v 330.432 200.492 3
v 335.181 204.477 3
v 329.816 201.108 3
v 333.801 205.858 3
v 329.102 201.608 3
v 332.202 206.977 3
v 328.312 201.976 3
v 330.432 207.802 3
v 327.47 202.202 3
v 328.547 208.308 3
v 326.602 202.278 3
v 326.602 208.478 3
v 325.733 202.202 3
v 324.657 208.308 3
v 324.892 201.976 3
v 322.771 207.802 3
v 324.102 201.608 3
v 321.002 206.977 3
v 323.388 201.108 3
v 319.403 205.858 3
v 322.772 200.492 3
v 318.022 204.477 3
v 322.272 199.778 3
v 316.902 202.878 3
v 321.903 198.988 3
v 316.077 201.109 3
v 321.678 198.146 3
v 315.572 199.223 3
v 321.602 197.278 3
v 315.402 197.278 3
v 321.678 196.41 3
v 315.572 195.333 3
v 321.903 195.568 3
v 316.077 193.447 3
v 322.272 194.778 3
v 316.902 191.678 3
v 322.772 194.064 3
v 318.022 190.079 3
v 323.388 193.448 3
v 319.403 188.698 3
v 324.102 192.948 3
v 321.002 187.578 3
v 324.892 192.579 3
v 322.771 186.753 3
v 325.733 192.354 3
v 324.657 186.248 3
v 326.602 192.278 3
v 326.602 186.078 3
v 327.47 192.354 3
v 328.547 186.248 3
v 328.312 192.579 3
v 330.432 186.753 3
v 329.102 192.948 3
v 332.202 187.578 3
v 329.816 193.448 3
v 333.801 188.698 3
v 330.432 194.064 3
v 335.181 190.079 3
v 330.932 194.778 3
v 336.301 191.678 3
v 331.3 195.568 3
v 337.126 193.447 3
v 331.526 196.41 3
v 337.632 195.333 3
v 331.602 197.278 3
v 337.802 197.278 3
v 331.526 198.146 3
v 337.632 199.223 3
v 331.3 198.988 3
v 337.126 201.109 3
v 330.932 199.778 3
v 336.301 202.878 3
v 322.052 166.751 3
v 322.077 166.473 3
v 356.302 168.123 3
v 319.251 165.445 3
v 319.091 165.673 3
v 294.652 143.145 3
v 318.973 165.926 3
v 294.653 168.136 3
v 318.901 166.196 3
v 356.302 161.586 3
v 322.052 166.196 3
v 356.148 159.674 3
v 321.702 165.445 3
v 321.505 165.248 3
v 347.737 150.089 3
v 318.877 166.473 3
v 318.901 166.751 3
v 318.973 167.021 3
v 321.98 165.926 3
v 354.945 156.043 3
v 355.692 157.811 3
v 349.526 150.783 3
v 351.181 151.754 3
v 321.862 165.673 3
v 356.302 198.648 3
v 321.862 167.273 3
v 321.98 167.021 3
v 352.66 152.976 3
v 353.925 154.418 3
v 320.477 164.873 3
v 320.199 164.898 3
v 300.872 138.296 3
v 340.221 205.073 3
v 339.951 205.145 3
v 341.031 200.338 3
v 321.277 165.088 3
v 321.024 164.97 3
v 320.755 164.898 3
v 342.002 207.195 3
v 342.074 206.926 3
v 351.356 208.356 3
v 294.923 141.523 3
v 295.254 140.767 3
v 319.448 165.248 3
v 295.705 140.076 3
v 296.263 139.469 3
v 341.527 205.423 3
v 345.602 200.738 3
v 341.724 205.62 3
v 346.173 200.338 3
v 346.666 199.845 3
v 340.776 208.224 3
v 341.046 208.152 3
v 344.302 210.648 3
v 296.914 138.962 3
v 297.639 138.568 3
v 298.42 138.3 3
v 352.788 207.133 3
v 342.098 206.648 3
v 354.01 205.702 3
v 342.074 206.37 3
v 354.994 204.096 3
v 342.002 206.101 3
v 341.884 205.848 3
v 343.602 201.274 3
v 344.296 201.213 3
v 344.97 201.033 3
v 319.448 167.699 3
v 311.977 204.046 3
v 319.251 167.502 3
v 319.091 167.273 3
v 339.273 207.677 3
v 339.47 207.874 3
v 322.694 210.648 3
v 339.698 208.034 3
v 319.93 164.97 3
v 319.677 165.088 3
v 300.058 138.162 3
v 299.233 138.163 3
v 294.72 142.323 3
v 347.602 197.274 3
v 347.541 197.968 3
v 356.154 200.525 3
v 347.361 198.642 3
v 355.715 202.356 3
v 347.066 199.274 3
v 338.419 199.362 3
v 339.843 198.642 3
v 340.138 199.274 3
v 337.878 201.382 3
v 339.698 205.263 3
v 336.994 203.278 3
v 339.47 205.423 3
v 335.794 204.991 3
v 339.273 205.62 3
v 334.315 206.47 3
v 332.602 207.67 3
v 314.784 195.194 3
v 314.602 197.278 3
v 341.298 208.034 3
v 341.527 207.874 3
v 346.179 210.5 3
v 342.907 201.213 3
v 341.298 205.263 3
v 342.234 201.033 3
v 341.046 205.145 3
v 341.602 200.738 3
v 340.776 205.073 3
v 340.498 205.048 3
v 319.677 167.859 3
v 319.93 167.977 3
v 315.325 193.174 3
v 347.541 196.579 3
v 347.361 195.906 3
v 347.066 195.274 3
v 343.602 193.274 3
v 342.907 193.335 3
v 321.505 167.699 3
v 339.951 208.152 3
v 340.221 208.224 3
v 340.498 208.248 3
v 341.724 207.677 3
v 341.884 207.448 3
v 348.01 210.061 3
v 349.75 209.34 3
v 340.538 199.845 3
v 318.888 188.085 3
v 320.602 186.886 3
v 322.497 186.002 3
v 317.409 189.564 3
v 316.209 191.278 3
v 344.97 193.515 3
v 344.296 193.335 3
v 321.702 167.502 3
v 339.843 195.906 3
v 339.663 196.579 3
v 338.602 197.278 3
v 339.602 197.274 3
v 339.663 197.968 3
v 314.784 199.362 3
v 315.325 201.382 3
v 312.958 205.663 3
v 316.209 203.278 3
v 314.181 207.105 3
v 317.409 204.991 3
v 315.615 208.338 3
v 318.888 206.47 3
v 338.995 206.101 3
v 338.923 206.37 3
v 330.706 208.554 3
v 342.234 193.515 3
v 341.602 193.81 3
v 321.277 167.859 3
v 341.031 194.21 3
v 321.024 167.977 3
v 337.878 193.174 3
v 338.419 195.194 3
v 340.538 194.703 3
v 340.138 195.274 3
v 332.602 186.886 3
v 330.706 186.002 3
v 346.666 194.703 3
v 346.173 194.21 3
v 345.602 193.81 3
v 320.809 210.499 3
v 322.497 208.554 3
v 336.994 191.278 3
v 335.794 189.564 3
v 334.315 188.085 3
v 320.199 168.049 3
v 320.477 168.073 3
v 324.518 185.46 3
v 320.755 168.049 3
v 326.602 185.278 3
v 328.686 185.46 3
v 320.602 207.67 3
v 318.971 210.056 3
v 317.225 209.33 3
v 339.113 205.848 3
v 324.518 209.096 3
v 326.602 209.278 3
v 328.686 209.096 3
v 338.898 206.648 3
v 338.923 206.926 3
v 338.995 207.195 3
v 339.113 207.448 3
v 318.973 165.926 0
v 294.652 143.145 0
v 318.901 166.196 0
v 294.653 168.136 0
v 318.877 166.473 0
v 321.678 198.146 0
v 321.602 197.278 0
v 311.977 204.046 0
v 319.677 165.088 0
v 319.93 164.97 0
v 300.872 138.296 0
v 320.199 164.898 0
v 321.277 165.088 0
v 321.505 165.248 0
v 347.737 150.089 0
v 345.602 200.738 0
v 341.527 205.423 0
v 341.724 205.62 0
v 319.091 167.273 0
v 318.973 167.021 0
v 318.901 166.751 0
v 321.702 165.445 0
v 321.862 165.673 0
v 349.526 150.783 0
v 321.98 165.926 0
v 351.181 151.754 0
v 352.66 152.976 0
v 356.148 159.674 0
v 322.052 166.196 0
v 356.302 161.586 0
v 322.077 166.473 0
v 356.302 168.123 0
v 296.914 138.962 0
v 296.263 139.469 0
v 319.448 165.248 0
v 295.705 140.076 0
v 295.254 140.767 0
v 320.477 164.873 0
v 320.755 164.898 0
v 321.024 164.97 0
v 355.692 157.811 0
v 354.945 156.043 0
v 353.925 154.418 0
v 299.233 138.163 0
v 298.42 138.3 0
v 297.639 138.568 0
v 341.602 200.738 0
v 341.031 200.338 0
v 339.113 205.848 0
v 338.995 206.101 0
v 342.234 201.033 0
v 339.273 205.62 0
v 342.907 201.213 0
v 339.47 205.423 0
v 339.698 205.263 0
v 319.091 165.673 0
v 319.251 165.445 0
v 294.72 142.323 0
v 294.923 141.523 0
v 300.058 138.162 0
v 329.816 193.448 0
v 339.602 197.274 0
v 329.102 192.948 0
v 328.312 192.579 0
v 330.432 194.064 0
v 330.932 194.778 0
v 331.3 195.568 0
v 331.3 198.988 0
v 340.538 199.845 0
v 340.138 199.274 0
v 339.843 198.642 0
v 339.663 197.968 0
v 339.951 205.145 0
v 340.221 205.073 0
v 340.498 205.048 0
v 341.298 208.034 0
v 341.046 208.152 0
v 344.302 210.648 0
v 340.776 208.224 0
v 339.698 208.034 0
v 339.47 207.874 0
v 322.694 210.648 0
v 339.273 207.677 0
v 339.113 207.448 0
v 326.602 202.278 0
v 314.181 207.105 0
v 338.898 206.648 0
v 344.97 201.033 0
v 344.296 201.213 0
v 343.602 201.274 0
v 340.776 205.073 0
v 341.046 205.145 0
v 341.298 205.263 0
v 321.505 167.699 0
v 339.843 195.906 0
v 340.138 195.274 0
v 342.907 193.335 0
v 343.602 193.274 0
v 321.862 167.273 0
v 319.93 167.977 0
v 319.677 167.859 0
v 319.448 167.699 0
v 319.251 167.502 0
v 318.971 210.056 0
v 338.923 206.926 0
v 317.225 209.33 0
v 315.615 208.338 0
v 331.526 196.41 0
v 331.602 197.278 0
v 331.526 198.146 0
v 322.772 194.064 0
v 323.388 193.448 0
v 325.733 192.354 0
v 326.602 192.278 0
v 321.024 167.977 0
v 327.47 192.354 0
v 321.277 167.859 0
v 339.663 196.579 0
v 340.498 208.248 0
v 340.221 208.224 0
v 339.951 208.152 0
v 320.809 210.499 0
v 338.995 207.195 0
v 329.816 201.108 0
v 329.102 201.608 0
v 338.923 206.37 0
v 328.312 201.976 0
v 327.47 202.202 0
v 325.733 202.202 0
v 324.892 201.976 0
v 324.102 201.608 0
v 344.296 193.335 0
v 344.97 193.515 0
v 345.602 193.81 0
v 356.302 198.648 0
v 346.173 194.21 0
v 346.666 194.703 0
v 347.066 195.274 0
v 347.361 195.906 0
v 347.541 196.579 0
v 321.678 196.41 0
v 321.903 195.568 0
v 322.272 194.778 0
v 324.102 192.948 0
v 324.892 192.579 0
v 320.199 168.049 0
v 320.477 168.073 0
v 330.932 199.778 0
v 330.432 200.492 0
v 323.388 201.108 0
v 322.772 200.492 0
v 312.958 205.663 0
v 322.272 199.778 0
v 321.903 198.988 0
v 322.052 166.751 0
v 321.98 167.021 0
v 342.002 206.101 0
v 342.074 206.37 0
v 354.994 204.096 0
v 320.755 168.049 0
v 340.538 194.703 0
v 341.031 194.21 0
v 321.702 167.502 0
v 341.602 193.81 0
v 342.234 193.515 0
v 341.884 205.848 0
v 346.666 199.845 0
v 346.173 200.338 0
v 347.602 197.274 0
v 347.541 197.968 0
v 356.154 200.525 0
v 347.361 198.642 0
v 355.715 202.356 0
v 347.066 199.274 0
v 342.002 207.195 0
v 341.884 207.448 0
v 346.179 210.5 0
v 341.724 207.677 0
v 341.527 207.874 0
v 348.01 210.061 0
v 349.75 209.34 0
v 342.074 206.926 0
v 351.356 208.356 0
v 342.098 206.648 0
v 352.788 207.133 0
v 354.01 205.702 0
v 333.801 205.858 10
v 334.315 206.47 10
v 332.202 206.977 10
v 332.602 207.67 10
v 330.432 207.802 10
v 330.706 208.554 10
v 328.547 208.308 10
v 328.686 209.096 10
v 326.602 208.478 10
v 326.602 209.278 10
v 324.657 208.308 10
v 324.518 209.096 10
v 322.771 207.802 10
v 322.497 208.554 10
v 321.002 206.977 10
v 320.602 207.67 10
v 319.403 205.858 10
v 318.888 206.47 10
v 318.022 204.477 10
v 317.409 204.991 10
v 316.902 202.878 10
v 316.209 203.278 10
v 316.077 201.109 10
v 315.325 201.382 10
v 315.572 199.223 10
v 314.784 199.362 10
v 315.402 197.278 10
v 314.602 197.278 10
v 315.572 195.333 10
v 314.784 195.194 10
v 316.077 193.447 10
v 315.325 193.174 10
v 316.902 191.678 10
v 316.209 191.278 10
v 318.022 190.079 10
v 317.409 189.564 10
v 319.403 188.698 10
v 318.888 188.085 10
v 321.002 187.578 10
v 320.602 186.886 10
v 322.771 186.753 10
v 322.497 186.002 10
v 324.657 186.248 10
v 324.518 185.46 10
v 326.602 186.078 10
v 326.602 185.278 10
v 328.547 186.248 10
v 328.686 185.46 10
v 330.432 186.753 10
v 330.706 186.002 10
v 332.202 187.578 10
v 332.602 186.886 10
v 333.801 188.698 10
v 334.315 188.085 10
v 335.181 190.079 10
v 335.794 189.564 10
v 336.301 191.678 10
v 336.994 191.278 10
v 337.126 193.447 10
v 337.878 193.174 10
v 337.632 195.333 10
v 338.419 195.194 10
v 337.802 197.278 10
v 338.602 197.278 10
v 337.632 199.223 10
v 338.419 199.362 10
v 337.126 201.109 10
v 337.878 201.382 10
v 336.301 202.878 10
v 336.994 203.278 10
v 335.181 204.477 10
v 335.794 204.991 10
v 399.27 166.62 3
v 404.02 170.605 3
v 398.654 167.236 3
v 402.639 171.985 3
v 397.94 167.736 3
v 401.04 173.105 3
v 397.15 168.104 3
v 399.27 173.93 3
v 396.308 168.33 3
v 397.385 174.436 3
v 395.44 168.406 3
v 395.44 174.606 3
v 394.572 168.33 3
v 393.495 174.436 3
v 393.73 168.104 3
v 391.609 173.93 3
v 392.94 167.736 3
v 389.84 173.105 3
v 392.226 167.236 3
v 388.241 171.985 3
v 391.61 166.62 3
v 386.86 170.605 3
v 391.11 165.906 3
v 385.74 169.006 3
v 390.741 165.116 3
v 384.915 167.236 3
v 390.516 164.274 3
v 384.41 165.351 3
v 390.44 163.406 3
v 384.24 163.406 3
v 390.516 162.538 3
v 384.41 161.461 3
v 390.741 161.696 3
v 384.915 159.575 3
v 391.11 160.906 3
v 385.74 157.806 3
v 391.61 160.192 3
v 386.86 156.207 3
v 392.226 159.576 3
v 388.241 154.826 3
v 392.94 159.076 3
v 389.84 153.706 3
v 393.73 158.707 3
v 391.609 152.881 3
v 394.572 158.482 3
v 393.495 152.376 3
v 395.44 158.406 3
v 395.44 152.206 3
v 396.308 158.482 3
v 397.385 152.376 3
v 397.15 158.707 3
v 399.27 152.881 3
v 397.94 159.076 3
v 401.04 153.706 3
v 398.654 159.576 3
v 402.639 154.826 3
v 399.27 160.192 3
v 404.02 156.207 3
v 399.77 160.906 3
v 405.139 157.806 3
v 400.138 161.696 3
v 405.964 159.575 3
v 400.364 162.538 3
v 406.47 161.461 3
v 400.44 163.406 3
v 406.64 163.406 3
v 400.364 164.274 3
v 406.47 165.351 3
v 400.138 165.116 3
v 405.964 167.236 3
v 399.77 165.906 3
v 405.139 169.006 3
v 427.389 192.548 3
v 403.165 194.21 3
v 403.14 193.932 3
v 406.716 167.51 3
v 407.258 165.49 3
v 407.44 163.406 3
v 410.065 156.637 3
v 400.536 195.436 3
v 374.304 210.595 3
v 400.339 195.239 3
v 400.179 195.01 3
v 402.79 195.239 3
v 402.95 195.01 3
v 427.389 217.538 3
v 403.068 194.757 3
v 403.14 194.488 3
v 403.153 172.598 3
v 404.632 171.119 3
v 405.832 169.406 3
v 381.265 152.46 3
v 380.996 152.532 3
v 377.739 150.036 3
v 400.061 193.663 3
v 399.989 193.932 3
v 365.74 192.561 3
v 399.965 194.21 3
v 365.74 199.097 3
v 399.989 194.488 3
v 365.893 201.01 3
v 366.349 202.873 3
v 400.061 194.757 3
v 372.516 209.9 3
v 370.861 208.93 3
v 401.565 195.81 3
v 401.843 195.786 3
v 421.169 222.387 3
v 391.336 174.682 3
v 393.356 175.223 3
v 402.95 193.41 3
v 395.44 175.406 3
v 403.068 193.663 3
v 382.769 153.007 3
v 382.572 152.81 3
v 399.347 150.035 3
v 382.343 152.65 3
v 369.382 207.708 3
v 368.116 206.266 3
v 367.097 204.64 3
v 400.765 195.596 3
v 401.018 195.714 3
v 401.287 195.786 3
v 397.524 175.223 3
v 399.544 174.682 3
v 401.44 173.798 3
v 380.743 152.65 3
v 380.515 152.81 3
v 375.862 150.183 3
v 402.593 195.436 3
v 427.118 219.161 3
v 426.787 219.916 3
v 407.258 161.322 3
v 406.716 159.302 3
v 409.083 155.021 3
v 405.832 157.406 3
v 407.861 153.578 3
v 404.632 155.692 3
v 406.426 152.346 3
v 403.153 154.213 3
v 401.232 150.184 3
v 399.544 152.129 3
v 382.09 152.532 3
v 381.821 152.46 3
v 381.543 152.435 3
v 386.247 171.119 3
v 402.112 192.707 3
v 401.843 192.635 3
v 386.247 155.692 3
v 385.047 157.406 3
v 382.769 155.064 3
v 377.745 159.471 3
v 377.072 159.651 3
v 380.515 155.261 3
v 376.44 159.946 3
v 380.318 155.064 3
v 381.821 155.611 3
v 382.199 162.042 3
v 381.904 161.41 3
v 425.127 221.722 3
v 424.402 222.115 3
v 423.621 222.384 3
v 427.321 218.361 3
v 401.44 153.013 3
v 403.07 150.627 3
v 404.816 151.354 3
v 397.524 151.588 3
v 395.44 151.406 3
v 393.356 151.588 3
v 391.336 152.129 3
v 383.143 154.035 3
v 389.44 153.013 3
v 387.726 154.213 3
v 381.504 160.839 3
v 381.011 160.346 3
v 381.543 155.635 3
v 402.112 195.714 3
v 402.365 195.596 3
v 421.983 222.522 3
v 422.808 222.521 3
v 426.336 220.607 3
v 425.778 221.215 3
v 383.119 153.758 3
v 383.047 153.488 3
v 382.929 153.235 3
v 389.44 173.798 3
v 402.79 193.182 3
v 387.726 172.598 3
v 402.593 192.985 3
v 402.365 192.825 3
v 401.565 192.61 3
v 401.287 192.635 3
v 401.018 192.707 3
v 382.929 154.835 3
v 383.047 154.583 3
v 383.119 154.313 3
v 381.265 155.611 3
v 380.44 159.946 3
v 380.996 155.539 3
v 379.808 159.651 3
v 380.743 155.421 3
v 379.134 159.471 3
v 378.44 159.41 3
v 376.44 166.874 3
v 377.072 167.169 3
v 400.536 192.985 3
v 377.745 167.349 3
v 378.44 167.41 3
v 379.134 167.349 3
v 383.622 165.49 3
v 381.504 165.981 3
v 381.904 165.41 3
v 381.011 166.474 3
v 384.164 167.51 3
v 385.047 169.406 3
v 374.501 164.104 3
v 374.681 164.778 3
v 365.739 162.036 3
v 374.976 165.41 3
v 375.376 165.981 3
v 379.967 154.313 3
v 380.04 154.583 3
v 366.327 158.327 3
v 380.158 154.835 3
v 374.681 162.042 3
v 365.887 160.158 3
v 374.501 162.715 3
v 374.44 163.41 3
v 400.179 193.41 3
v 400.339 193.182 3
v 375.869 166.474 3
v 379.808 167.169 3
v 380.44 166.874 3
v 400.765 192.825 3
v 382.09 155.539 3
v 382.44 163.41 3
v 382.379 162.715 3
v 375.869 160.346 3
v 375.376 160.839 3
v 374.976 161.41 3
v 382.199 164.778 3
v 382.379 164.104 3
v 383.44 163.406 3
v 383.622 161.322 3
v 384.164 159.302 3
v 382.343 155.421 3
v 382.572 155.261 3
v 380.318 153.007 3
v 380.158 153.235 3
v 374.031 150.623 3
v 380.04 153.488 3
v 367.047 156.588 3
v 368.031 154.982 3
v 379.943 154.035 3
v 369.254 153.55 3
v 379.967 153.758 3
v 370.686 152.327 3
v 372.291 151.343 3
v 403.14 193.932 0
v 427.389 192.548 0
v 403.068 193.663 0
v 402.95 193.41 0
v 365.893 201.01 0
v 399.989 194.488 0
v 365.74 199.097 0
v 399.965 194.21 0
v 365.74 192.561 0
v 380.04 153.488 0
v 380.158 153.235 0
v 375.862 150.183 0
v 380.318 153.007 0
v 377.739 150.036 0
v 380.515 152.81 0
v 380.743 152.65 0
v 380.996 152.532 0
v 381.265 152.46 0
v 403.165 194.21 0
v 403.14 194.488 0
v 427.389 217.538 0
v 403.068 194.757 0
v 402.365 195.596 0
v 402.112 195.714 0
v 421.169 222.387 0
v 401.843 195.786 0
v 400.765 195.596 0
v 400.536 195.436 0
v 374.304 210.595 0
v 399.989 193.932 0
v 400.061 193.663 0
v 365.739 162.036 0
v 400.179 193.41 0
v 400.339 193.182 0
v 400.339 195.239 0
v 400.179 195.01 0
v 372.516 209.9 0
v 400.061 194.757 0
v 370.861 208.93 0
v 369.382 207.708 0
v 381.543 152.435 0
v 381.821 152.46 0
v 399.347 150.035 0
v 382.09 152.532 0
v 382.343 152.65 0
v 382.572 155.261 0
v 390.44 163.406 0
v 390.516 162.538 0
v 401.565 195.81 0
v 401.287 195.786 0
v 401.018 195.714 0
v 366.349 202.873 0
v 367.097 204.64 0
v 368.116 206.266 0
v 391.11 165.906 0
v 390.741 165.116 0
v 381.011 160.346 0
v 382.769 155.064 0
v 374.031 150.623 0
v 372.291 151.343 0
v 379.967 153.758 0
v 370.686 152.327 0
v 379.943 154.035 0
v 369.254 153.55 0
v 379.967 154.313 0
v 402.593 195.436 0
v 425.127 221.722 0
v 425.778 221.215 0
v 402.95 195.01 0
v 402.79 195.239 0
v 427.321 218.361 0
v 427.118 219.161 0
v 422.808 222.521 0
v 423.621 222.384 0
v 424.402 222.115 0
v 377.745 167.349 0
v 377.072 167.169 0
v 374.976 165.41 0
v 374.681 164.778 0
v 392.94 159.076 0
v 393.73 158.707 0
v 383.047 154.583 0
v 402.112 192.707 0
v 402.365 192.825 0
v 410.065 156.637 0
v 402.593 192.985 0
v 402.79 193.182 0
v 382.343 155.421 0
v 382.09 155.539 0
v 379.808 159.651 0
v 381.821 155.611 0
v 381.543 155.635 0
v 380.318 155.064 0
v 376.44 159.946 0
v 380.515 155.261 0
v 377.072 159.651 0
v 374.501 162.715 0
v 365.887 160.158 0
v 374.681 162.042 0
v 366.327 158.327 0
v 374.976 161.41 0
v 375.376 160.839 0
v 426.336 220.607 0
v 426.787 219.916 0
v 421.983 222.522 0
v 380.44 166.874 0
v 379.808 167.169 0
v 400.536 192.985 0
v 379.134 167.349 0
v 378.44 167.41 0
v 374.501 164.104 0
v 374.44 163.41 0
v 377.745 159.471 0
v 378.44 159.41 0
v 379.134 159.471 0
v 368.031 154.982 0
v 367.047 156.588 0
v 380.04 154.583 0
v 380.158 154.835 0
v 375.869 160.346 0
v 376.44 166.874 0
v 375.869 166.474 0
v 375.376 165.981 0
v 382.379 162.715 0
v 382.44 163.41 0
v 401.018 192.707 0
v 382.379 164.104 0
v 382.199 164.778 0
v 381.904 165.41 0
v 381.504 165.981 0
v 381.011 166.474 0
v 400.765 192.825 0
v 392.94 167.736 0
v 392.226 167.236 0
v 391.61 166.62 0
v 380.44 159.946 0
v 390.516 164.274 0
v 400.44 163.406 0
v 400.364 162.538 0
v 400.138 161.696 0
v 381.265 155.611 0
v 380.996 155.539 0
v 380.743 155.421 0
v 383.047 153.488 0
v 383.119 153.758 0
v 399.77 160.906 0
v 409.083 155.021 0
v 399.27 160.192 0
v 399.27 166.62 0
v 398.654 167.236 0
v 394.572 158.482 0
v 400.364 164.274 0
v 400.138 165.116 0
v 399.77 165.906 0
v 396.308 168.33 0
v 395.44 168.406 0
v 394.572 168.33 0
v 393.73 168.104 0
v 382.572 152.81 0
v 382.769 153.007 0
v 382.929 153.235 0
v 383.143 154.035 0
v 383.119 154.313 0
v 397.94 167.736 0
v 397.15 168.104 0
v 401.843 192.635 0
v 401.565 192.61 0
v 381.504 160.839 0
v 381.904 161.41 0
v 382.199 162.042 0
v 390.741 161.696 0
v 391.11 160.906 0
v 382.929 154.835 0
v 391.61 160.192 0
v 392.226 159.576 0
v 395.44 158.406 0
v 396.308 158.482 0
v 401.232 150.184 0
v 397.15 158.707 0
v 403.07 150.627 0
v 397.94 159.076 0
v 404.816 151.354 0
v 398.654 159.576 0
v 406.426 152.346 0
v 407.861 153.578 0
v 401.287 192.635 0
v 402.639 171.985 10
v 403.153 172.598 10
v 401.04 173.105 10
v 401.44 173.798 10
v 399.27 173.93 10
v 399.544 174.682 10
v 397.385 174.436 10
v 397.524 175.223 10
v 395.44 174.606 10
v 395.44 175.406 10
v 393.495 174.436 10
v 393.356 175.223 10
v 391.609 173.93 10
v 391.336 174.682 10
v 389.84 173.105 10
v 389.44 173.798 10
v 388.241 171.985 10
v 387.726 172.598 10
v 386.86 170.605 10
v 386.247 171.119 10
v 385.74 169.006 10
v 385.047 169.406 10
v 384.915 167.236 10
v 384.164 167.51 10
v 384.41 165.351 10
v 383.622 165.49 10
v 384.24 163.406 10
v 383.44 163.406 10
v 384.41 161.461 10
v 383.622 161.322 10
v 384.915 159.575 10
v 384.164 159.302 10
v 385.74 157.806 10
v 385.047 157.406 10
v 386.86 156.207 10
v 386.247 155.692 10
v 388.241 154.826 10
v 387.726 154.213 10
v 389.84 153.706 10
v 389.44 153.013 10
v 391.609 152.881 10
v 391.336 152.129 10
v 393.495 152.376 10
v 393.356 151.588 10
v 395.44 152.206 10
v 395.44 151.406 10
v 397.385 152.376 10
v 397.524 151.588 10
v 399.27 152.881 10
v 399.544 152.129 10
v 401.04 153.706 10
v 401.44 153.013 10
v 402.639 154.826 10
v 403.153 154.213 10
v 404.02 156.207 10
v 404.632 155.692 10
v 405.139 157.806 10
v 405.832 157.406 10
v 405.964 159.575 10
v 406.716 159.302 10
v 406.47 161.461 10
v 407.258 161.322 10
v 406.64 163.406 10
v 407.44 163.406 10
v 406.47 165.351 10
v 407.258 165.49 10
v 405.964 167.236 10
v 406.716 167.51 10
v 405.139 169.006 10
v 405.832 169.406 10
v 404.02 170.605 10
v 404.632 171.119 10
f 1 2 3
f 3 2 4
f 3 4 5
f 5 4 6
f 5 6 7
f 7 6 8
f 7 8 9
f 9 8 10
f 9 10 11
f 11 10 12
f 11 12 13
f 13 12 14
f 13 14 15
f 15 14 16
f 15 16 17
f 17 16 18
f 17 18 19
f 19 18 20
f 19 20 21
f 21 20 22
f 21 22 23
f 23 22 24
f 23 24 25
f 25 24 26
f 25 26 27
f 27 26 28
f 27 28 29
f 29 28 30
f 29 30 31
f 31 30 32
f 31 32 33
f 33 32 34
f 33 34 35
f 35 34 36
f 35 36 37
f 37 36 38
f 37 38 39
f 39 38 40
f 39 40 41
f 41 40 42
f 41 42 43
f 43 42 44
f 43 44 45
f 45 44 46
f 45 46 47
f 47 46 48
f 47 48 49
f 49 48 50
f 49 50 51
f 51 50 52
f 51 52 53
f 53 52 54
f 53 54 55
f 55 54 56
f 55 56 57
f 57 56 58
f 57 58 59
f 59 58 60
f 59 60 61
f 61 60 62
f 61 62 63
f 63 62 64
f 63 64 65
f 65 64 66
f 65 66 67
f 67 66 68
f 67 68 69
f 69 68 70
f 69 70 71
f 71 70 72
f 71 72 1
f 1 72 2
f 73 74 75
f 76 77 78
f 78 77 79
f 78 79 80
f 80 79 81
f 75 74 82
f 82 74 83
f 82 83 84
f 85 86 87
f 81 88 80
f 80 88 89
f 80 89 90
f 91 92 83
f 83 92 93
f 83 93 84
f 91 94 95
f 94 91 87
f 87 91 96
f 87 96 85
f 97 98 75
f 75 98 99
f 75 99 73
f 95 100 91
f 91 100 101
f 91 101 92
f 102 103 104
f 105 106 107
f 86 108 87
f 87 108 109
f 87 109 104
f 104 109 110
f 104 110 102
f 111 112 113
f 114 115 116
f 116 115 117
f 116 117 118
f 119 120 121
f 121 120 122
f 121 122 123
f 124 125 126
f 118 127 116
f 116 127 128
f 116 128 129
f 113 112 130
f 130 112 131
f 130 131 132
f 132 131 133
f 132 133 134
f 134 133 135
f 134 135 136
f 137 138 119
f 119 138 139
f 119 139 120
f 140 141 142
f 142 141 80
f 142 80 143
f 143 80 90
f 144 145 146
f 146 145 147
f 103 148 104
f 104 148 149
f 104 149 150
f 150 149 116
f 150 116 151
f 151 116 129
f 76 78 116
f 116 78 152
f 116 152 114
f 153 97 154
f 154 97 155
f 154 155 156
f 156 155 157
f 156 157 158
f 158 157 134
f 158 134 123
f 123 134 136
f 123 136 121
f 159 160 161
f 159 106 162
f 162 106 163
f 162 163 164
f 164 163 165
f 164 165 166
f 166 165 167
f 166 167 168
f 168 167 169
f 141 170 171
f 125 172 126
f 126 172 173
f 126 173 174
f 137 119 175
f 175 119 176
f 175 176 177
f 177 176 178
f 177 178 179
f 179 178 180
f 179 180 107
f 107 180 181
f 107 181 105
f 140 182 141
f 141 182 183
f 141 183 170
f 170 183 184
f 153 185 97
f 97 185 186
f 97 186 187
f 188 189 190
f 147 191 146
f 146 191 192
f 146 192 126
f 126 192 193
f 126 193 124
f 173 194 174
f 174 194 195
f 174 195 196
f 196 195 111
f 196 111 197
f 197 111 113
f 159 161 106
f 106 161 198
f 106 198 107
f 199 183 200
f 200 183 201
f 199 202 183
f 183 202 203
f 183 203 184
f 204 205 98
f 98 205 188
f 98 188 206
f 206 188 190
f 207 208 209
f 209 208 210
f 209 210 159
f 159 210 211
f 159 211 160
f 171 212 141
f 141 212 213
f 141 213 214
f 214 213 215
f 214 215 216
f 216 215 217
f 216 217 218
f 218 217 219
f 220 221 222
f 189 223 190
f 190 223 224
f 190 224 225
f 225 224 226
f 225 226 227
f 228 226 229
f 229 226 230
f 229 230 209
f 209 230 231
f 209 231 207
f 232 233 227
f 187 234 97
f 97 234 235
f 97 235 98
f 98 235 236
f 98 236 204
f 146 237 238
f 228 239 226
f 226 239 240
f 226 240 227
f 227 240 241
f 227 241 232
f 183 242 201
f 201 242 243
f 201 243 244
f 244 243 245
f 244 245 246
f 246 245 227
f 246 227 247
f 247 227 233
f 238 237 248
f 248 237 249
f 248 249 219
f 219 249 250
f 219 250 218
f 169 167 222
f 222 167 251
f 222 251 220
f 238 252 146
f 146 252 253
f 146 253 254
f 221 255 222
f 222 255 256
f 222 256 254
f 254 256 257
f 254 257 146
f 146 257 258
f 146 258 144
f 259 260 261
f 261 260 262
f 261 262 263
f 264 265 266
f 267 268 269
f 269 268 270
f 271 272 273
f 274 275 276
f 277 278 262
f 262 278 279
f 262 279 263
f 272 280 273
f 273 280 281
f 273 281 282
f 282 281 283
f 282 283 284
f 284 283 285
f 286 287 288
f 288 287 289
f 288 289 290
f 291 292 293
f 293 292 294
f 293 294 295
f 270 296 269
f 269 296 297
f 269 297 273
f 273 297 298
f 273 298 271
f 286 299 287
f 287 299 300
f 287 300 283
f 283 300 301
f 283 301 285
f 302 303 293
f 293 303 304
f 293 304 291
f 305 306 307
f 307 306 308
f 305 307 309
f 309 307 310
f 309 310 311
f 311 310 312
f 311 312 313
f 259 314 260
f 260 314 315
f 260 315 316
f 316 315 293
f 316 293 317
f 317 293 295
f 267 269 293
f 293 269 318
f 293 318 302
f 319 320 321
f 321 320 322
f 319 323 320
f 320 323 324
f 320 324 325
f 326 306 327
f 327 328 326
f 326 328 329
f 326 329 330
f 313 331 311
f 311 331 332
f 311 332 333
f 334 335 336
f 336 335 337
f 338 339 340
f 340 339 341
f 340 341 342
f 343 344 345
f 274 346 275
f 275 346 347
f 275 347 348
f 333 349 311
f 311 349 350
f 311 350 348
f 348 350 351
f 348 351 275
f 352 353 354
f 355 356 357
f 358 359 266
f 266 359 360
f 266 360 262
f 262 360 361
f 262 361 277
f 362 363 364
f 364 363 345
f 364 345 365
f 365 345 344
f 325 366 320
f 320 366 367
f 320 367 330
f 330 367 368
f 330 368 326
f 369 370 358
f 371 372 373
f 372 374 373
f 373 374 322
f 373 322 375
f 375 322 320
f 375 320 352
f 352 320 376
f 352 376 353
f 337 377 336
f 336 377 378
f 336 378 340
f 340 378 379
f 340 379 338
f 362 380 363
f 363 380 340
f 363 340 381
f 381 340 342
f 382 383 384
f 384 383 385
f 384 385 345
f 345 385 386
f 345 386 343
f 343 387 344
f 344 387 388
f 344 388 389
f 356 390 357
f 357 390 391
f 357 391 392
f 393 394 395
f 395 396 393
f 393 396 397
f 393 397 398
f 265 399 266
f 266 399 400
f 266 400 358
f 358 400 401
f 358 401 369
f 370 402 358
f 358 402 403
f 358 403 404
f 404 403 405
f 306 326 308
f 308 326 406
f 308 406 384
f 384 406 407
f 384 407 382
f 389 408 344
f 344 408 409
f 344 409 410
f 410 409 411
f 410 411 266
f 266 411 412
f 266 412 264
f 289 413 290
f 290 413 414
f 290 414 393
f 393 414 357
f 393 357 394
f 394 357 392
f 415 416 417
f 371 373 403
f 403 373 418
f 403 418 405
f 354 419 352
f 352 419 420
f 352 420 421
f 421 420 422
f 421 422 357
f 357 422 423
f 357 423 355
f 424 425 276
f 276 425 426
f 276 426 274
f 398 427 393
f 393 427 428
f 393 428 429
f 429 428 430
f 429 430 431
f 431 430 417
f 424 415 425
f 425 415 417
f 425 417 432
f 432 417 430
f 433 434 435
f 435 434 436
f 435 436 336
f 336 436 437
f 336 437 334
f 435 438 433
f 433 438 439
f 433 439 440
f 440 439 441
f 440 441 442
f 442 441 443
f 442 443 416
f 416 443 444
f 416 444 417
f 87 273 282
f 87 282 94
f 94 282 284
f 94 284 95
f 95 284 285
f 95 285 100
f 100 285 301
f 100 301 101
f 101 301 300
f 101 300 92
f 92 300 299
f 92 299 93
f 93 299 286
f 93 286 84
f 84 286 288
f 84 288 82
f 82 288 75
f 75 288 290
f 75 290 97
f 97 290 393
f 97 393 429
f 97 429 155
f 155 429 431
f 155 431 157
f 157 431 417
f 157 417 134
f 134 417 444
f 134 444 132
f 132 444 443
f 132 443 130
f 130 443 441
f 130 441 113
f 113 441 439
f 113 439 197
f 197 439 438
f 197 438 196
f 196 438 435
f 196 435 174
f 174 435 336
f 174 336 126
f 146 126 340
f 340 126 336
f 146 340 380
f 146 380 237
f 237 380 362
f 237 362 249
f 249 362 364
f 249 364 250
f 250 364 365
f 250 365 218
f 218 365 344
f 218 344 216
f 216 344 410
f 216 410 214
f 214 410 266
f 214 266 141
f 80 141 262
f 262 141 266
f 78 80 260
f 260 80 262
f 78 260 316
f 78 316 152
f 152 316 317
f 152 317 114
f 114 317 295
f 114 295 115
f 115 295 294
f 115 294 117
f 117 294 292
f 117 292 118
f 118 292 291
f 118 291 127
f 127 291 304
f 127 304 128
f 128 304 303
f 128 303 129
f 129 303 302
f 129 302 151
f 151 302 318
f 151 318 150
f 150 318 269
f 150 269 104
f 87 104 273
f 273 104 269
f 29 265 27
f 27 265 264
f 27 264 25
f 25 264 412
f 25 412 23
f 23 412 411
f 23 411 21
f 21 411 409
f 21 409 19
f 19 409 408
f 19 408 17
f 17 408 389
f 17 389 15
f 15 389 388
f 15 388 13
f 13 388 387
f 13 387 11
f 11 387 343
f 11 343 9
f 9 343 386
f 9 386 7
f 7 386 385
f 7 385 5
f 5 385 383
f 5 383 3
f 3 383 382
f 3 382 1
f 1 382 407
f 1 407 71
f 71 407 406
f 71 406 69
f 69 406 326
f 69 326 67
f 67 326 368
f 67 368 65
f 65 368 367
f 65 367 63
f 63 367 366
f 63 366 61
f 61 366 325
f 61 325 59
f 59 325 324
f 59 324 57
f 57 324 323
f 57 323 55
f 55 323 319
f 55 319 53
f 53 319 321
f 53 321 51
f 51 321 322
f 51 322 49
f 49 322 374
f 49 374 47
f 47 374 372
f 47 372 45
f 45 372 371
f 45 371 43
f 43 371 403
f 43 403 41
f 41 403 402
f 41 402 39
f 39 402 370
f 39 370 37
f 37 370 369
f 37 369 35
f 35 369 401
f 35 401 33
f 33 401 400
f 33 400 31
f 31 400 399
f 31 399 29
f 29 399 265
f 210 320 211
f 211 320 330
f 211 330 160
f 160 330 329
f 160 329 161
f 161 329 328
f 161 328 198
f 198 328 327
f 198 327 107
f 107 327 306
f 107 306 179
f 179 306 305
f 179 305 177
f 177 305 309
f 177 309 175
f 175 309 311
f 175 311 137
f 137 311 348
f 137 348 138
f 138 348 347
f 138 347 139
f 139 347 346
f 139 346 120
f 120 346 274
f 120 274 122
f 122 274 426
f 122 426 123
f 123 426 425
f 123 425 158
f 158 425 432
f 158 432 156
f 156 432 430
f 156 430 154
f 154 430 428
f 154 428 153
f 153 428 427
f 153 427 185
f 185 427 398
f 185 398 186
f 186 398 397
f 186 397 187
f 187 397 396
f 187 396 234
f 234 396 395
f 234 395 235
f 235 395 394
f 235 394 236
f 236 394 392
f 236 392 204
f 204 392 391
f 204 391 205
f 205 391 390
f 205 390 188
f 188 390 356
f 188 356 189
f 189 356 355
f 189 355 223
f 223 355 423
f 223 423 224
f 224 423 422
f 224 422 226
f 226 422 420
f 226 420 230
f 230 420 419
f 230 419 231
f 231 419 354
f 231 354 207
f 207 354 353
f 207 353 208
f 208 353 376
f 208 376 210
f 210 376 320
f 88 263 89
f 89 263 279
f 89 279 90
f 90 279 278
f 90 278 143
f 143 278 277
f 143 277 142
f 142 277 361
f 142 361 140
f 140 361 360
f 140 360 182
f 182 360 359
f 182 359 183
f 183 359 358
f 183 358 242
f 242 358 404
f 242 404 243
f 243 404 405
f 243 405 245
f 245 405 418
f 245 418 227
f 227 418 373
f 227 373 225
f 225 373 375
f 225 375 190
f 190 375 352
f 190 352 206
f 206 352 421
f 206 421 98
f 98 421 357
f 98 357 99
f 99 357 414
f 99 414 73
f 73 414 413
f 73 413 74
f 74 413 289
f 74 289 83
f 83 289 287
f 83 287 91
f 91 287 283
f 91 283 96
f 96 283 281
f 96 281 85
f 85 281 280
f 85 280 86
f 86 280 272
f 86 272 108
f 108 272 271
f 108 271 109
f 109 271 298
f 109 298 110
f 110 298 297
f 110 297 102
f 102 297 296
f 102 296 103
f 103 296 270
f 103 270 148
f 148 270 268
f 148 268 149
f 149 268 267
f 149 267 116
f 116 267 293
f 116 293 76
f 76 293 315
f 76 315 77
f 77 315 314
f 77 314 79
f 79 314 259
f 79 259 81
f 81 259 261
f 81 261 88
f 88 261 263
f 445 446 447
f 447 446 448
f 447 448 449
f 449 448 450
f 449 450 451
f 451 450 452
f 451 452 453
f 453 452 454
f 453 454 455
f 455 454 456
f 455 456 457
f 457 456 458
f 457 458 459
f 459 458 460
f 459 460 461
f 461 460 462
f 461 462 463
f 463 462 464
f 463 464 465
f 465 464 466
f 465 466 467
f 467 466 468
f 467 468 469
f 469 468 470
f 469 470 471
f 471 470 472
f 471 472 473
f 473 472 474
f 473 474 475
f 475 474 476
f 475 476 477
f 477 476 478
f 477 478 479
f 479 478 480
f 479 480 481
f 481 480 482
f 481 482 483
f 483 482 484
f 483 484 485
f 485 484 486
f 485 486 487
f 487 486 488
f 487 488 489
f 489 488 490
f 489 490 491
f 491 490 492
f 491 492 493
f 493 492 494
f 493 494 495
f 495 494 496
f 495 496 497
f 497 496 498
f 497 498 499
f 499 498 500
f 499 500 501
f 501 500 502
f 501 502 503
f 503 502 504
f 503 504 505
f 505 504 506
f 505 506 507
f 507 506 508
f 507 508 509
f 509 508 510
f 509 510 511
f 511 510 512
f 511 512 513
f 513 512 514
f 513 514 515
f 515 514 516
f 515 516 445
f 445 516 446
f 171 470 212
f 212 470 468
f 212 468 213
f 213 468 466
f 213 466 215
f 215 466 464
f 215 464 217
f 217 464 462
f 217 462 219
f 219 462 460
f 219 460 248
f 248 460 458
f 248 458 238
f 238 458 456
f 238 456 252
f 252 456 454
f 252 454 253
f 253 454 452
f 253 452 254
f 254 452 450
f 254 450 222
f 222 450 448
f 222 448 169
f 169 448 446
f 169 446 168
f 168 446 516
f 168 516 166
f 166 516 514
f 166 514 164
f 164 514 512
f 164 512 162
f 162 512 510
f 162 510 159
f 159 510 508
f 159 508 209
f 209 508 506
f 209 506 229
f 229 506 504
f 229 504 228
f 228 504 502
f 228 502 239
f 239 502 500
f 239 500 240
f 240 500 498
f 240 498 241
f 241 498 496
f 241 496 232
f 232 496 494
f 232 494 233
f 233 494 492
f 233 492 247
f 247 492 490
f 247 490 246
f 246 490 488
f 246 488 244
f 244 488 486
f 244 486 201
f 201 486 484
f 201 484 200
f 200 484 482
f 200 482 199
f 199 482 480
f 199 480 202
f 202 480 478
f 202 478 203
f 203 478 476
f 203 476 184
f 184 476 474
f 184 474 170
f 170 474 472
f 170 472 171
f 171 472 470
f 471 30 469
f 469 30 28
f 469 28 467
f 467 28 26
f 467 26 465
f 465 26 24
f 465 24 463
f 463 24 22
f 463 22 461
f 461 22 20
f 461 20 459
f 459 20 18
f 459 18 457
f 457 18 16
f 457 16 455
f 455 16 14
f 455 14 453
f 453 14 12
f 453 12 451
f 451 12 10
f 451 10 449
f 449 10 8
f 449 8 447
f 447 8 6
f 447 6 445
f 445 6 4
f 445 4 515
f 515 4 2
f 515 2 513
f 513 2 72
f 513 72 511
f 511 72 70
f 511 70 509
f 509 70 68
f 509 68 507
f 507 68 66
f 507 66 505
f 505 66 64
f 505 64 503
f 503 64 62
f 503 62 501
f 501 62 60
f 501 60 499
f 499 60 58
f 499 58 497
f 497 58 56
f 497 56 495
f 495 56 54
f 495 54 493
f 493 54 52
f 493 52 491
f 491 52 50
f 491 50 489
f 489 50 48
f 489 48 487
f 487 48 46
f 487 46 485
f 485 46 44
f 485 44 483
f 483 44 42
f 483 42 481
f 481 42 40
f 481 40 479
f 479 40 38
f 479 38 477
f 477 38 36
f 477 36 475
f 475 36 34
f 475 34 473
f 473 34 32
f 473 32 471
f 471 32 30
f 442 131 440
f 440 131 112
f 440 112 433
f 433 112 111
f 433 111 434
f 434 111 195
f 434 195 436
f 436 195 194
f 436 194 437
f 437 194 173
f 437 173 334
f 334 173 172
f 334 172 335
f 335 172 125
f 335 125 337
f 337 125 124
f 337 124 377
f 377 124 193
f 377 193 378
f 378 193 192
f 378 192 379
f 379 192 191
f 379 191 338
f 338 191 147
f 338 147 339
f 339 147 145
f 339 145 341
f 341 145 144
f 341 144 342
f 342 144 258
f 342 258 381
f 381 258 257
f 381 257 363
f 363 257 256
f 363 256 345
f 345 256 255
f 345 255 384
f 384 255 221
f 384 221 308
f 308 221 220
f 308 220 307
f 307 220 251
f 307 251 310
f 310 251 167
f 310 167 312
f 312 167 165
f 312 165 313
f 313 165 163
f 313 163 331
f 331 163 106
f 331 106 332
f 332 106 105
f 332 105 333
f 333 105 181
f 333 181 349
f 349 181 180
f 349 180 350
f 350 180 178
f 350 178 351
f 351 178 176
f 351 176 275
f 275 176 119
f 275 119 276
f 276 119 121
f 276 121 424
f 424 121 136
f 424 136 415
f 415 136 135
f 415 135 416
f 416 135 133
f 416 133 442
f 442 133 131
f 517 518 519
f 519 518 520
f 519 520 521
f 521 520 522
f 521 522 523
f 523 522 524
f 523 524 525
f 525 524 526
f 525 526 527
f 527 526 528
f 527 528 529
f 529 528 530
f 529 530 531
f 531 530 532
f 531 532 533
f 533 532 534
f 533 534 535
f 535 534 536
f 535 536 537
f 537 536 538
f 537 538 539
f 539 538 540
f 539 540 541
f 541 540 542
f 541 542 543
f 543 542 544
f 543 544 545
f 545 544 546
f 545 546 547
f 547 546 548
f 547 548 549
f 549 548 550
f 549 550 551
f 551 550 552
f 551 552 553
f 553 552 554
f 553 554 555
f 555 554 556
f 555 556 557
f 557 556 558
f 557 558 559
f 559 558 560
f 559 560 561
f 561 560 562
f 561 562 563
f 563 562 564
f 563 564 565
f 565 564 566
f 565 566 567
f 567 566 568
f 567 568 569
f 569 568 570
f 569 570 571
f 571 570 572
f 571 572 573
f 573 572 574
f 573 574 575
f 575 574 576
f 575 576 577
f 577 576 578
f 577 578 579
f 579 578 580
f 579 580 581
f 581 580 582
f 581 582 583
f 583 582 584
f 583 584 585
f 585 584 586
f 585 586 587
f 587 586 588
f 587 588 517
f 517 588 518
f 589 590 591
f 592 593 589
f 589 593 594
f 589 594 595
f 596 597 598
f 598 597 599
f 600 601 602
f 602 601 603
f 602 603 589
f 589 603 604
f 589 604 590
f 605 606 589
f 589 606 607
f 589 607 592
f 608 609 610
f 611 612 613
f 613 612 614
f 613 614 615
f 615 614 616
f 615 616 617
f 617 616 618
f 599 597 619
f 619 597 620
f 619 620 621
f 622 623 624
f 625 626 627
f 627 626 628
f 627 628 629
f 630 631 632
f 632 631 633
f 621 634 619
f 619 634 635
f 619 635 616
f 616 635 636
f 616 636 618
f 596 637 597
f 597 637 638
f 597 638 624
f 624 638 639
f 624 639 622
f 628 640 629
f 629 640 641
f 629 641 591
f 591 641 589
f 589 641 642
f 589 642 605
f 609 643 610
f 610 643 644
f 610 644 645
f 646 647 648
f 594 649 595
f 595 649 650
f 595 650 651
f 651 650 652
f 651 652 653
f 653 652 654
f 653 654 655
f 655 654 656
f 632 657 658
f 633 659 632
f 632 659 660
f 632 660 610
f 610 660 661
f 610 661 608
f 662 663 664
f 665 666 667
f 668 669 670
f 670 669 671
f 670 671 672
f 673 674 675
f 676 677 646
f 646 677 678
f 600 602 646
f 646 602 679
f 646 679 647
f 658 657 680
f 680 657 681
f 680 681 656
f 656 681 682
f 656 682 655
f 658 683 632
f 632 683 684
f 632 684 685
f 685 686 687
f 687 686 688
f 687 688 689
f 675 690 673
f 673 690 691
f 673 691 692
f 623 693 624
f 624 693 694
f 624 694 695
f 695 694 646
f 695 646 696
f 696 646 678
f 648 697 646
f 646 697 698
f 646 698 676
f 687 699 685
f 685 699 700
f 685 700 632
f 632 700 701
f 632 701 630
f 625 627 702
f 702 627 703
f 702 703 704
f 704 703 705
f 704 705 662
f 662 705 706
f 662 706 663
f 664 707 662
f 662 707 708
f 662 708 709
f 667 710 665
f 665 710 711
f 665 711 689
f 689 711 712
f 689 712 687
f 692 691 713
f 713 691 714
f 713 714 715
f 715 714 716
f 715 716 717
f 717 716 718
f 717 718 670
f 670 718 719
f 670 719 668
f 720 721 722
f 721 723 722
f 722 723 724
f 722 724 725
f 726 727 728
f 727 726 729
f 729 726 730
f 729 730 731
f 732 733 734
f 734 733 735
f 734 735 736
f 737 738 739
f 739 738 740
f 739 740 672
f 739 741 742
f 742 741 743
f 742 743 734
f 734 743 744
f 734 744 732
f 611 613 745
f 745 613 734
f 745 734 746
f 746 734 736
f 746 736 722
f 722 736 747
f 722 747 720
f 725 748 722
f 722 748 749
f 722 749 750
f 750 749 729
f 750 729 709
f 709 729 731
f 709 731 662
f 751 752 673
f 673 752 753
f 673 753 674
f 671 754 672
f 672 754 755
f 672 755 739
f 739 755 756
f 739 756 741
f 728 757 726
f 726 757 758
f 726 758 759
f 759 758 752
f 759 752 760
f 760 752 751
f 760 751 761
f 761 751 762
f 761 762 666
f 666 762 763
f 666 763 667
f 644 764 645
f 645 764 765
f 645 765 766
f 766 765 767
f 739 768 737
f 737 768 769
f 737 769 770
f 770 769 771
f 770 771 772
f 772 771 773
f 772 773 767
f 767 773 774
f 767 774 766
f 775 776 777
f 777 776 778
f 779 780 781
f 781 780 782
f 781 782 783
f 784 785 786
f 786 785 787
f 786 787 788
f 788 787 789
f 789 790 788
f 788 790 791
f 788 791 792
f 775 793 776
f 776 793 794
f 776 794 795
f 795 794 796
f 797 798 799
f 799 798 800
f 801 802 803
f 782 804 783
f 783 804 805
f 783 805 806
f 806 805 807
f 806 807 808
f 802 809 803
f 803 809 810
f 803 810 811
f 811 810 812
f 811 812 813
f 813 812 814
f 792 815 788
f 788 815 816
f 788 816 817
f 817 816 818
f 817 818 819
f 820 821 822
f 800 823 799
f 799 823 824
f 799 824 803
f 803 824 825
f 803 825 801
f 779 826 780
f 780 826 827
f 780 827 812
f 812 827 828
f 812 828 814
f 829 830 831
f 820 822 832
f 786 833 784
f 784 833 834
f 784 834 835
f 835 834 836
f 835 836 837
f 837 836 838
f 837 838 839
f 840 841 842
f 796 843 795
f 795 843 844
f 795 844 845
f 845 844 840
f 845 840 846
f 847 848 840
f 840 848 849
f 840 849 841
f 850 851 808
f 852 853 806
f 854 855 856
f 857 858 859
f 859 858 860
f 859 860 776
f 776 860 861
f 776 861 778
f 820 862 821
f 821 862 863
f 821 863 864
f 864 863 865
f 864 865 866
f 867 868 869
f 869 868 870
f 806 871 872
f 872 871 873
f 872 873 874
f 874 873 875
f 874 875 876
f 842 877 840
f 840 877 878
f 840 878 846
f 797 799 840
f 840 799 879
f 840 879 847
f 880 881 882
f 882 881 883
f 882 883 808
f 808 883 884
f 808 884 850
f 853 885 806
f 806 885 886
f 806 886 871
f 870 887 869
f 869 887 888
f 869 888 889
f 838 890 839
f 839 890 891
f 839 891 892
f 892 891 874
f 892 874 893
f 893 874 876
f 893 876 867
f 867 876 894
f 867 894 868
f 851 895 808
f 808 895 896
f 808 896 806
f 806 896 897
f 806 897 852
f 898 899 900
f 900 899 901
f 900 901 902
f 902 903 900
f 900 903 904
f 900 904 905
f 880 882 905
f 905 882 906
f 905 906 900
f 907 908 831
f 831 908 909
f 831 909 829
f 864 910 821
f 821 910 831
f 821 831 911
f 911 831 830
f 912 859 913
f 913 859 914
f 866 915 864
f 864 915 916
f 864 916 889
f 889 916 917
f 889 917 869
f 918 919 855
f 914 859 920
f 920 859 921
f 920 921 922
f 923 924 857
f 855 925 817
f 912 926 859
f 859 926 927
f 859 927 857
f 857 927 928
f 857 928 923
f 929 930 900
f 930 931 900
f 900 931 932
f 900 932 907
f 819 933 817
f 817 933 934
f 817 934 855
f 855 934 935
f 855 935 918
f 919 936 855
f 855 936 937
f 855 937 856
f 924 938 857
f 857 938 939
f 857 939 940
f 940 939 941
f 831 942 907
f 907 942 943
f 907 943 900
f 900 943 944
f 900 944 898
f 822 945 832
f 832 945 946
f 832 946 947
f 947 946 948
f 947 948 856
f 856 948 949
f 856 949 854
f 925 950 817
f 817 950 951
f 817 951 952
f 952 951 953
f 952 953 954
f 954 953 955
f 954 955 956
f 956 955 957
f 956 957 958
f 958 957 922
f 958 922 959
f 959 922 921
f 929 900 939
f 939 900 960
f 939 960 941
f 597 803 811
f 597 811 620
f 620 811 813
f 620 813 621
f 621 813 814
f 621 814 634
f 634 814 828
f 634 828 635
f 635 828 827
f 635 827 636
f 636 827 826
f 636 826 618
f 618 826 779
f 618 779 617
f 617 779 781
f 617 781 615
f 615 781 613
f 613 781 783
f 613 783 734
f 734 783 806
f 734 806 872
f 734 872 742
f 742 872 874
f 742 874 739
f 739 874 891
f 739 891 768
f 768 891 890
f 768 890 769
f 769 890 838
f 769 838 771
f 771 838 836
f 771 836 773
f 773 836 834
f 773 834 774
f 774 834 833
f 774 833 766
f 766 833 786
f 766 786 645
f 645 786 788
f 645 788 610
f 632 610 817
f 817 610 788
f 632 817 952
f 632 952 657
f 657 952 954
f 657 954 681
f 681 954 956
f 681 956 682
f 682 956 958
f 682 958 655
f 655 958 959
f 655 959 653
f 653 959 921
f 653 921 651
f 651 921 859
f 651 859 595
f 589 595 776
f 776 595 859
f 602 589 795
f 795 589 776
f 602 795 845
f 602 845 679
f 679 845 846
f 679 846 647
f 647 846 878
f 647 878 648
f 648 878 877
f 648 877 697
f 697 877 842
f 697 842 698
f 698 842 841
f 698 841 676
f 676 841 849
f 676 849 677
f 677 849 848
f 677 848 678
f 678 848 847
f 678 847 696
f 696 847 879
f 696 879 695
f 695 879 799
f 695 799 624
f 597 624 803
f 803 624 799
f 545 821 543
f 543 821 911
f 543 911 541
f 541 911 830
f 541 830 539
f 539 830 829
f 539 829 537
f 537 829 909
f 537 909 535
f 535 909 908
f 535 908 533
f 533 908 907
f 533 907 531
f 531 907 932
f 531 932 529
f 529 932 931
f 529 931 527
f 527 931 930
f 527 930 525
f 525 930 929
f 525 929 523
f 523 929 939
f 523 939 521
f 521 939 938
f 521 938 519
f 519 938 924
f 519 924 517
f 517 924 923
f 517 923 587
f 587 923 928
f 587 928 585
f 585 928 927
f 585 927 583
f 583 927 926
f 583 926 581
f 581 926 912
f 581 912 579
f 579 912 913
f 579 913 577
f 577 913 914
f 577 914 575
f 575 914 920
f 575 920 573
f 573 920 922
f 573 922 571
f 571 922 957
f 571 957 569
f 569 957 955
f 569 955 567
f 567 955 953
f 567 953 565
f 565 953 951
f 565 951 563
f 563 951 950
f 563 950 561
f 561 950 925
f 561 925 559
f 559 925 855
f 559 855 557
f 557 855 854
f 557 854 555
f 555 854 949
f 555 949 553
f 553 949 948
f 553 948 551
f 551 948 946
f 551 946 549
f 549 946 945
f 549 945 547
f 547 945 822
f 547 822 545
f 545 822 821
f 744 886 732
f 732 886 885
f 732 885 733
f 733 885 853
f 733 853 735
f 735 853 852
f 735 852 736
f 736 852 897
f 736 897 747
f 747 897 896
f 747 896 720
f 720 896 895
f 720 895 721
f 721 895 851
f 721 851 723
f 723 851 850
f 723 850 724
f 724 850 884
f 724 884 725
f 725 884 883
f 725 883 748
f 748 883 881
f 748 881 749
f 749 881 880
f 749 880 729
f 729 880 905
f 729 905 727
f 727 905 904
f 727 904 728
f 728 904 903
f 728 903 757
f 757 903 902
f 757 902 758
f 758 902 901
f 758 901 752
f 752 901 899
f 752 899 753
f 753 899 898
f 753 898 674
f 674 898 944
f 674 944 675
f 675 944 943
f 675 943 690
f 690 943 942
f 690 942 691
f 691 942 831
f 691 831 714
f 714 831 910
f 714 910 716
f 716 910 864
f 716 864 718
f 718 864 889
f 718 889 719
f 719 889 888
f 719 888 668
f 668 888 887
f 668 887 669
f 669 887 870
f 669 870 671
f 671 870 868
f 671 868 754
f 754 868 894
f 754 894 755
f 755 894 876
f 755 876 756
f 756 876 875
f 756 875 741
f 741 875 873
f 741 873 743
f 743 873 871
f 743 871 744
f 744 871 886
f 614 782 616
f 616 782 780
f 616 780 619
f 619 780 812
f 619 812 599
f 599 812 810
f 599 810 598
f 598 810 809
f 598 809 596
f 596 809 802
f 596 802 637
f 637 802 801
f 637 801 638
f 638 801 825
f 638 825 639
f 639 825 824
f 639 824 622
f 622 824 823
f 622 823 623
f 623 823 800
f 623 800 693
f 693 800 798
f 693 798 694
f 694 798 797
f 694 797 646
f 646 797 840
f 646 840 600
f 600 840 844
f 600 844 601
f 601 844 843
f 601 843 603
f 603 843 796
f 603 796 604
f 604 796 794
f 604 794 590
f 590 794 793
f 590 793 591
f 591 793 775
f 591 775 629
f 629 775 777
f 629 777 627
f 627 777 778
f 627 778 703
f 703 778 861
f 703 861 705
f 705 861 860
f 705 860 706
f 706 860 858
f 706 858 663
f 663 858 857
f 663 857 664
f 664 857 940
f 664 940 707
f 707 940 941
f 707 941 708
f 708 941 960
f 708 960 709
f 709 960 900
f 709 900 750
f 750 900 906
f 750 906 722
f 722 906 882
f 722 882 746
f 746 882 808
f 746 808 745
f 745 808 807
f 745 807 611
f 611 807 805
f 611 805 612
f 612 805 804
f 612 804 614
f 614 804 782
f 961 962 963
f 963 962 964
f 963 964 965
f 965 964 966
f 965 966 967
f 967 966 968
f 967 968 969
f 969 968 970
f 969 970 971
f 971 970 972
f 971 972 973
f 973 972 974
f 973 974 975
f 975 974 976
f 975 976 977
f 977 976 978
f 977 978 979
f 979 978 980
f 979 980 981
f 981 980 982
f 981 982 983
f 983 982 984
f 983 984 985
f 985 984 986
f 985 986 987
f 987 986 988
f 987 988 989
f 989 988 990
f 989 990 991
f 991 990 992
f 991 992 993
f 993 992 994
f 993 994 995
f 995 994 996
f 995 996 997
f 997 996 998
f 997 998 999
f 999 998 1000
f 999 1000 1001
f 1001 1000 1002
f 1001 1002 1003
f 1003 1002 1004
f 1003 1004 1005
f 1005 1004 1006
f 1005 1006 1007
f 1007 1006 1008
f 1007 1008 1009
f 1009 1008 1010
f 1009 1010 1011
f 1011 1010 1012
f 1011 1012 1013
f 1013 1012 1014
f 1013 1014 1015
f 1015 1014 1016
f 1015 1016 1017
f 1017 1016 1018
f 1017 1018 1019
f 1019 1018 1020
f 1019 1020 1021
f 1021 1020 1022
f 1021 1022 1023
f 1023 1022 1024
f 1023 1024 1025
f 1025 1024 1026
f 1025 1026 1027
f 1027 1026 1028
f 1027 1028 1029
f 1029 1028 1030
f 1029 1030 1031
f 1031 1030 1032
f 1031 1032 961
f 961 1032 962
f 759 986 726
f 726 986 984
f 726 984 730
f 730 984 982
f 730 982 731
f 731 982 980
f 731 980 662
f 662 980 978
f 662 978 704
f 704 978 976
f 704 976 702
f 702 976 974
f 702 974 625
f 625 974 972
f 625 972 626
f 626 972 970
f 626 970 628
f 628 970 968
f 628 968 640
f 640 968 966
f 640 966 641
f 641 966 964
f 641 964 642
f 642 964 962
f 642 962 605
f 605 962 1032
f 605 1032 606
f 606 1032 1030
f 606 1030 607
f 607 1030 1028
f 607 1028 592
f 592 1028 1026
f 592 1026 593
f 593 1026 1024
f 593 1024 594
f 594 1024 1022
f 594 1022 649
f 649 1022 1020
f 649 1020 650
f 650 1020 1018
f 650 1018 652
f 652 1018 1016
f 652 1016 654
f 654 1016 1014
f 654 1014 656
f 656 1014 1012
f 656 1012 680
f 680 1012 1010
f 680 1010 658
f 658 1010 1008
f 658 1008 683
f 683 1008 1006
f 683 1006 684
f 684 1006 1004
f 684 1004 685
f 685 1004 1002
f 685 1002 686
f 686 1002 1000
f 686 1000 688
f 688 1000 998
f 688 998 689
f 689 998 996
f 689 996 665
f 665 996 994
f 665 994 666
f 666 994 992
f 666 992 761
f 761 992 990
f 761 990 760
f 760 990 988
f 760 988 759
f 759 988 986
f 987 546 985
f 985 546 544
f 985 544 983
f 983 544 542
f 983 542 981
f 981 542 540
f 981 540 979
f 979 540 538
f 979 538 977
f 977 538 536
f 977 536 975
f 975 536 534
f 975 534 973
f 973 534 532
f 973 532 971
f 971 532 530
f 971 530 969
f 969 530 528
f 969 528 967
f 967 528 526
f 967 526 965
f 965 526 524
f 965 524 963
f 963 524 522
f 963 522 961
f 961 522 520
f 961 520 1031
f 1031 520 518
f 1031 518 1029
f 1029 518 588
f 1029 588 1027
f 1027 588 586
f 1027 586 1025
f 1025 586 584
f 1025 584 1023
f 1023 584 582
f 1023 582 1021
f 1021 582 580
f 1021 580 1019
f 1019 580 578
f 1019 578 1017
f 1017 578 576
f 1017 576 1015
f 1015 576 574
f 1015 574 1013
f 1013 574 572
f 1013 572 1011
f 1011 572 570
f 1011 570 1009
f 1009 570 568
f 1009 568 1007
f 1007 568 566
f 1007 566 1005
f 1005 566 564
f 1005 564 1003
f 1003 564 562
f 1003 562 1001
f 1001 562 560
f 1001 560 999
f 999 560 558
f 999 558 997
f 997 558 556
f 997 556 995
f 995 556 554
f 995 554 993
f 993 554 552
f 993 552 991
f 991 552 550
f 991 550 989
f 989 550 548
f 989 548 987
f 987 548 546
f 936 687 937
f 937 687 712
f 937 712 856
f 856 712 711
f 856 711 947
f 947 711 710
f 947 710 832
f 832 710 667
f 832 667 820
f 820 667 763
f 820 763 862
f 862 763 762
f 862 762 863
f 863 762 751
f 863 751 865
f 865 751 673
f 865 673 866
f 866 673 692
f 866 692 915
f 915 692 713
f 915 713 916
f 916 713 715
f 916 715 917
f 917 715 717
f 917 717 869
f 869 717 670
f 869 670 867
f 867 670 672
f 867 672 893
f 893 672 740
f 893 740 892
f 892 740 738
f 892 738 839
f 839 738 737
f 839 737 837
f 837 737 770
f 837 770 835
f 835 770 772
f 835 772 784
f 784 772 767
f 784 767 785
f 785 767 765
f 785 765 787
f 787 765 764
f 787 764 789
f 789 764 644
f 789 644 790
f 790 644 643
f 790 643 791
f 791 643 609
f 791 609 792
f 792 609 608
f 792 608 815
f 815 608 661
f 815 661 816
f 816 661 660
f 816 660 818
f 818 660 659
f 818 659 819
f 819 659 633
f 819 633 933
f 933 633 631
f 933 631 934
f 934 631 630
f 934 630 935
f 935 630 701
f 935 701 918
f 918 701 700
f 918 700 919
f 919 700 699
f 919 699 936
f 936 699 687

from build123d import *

# Parameters (mm, degrees)
MODEL_R                       = 5
MODEL_R_2                     = 4
MODEL_R_3                     = 1.6
Y_KSEKLIK_EKSTR_ZYON2_DEPTH   = 3
Y_KSEKLIK_EKSTR_ZYON2_2_DEPTH = 3
IZIM2_R                       = 12
IZIM2_R_2                     = 11.2
Y_KSEKLIK_EKSTR_ZYON3_DEPTH   = 7
IZIM3_R                       = 1.6
KES_EKSTR_ZYON1_DEPTH         = 7


with BuildPart() as part:
    # Model → Yükseklik-Ekstrüzyon2 (new body)
    with BuildSketch(Plane.XY):
        with BuildLine():
            Line((294.652901745, 168.135808825), (294.652403018, 143.145355564))
            ThreePointArc((294.652403018, 143.145355564), (296.578324113, 139.201902019), (300.872515341, 138.296407884))
            Line((300.872515341, 138.296407884), (347.73731009, 150.088964557))
            ThreePointArc((347.73731009, 150.088964557), (353.925243575, 154.418161808), (356.30167976, 161.586496391))
            Line((356.30167976, 161.586496391), (356.30175763, 168.122816561))
            Line((356.30175763, 168.122816561), (356.302119744, 198.648056356))
            ThreePointArc((356.302119744, 198.648056356), (352.78750447, 207.133373479), (344.302270705, 210.648191543))
            Line((344.302270705, 210.648191543), (322.694469143, 210.648448535))
            ThreePointArc((322.694469143, 210.648448535), (316.400600951, 208.865542582), (311.97699764, 204.046490372))
            Line((311.97699764, 204.046490372), (294.652901745, 168.135808825))
        make_face()
        with Locations((326.6017296, 197.277910195)):
            Circle(MODEL_R, mode=Mode.SUBTRACT)
        with Locations((343.601728105, 197.273808594)):
            Circle(MODEL_R_2, mode=Mode.SUBTRACT)
        with Locations((320.476745212, 166.47348332)):
            Circle(MODEL_R_3, mode=Mode.SUBTRACT)
    extrude(amount=Y_KSEKLIK_EKSTR_ZYON2_DEPTH)



with BuildPart() as body_2:
    # Model → Y_kseklik-Ekstr_zyon2 2 (new body)
    with BuildSketch(Plane.XY):
        with BuildLine():
            Line((421.16852996, 222.387163837), (374.304233938, 210.594732659))
            ThreePointArc((374.304233938, 210.594732659), (368.116300221, 206.265535904), (365.739863495, 199.097201598))
            Line((365.739863495, 199.097201598), (365.739824693, 195.860800514))
            Line((365.739824693, 195.860800514), (365.739785625, 192.560881428))
            Line((365.739785625, 192.560881428), (365.739423511, 162.035641633))
            ThreePointArc((365.739423511, 162.035641633), (369.254036528, 153.550317503), (377.739274869, 150.035497369))
            Line((377.739274869, 150.035497369), (399.347076431, 150.035240377))
            ThreePointArc((399.347076431, 150.035240377), (405.640945291, 151.818150271), (410.064546388, 156.637206844))
            Line((410.064546388, 156.637206844), (427.388642283, 192.547888391))
            Line((427.388642283, 192.547888391), (427.388642283, 217.538315941))
            ThreePointArc((427.388642283, 217.538315941), (425.462681839, 221.481700377), (421.16852996, 222.387163837))
        make_face()
        with Locations((395.439813655, 163.405787794)):
            Circle(MODEL_R, mode=Mode.SUBTRACT)
        with Locations((378.43981515, 163.409889395)):
            Circle(MODEL_R_2, mode=Mode.SUBTRACT)
        with Locations((401.564798043, 194.210214669)):
            Circle(MODEL_R_3, mode=Mode.SUBTRACT)
    extrude(amount=Y_KSEKLIK_EKSTR_ZYON2_2_DEPTH)


with BuildPart() as part_1:
    add(part.part)

    add(body_2.part)  # Yükseklik-Ekstrüzyon3 merges body 2
    # Çizim2 → Yükseklik-Ekstrüzyon3 (add)
    # profile 1 of 2: a face of its own
    with BuildSketch(Plane.XY.offset(3)):
        with Locations((395.439813655, 163.405787794)):
            Circle(IZIM2_R)
        with Locations((395.439813655, 163.405787794)):
            Circle(IZIM2_R_2, mode=Mode.SUBTRACT)
    # profile 2 of 2: a face of its own
    with BuildSketch(Plane.XY.offset(3)):
        with Locations((326.6017296, 197.277910195)):
            Circle(IZIM2_R)
        with Locations((326.6017296, 197.277910195)):
            Circle(IZIM2_R_2, mode=Mode.SUBTRACT)
    extrude(amount=Y_KSEKLIK_EKSTR_ZYON3_DEPTH)

    # Çizim3 → Kes-Ekstrüzyon1 (cut)
    with BuildSketch(Plane.XY.offset(3)):
        with Locations((340.498369924, 206.648236785)):
            Circle(IZIM3_R)
        with Locations((381.54317565, 154.035452128)):
            Circle(IZIM3_R)
    extrude(amount=-KES_EKSTR_ZYON1_DEPTH, mode=Mode.SUBTRACT)


solid = part_1.part
